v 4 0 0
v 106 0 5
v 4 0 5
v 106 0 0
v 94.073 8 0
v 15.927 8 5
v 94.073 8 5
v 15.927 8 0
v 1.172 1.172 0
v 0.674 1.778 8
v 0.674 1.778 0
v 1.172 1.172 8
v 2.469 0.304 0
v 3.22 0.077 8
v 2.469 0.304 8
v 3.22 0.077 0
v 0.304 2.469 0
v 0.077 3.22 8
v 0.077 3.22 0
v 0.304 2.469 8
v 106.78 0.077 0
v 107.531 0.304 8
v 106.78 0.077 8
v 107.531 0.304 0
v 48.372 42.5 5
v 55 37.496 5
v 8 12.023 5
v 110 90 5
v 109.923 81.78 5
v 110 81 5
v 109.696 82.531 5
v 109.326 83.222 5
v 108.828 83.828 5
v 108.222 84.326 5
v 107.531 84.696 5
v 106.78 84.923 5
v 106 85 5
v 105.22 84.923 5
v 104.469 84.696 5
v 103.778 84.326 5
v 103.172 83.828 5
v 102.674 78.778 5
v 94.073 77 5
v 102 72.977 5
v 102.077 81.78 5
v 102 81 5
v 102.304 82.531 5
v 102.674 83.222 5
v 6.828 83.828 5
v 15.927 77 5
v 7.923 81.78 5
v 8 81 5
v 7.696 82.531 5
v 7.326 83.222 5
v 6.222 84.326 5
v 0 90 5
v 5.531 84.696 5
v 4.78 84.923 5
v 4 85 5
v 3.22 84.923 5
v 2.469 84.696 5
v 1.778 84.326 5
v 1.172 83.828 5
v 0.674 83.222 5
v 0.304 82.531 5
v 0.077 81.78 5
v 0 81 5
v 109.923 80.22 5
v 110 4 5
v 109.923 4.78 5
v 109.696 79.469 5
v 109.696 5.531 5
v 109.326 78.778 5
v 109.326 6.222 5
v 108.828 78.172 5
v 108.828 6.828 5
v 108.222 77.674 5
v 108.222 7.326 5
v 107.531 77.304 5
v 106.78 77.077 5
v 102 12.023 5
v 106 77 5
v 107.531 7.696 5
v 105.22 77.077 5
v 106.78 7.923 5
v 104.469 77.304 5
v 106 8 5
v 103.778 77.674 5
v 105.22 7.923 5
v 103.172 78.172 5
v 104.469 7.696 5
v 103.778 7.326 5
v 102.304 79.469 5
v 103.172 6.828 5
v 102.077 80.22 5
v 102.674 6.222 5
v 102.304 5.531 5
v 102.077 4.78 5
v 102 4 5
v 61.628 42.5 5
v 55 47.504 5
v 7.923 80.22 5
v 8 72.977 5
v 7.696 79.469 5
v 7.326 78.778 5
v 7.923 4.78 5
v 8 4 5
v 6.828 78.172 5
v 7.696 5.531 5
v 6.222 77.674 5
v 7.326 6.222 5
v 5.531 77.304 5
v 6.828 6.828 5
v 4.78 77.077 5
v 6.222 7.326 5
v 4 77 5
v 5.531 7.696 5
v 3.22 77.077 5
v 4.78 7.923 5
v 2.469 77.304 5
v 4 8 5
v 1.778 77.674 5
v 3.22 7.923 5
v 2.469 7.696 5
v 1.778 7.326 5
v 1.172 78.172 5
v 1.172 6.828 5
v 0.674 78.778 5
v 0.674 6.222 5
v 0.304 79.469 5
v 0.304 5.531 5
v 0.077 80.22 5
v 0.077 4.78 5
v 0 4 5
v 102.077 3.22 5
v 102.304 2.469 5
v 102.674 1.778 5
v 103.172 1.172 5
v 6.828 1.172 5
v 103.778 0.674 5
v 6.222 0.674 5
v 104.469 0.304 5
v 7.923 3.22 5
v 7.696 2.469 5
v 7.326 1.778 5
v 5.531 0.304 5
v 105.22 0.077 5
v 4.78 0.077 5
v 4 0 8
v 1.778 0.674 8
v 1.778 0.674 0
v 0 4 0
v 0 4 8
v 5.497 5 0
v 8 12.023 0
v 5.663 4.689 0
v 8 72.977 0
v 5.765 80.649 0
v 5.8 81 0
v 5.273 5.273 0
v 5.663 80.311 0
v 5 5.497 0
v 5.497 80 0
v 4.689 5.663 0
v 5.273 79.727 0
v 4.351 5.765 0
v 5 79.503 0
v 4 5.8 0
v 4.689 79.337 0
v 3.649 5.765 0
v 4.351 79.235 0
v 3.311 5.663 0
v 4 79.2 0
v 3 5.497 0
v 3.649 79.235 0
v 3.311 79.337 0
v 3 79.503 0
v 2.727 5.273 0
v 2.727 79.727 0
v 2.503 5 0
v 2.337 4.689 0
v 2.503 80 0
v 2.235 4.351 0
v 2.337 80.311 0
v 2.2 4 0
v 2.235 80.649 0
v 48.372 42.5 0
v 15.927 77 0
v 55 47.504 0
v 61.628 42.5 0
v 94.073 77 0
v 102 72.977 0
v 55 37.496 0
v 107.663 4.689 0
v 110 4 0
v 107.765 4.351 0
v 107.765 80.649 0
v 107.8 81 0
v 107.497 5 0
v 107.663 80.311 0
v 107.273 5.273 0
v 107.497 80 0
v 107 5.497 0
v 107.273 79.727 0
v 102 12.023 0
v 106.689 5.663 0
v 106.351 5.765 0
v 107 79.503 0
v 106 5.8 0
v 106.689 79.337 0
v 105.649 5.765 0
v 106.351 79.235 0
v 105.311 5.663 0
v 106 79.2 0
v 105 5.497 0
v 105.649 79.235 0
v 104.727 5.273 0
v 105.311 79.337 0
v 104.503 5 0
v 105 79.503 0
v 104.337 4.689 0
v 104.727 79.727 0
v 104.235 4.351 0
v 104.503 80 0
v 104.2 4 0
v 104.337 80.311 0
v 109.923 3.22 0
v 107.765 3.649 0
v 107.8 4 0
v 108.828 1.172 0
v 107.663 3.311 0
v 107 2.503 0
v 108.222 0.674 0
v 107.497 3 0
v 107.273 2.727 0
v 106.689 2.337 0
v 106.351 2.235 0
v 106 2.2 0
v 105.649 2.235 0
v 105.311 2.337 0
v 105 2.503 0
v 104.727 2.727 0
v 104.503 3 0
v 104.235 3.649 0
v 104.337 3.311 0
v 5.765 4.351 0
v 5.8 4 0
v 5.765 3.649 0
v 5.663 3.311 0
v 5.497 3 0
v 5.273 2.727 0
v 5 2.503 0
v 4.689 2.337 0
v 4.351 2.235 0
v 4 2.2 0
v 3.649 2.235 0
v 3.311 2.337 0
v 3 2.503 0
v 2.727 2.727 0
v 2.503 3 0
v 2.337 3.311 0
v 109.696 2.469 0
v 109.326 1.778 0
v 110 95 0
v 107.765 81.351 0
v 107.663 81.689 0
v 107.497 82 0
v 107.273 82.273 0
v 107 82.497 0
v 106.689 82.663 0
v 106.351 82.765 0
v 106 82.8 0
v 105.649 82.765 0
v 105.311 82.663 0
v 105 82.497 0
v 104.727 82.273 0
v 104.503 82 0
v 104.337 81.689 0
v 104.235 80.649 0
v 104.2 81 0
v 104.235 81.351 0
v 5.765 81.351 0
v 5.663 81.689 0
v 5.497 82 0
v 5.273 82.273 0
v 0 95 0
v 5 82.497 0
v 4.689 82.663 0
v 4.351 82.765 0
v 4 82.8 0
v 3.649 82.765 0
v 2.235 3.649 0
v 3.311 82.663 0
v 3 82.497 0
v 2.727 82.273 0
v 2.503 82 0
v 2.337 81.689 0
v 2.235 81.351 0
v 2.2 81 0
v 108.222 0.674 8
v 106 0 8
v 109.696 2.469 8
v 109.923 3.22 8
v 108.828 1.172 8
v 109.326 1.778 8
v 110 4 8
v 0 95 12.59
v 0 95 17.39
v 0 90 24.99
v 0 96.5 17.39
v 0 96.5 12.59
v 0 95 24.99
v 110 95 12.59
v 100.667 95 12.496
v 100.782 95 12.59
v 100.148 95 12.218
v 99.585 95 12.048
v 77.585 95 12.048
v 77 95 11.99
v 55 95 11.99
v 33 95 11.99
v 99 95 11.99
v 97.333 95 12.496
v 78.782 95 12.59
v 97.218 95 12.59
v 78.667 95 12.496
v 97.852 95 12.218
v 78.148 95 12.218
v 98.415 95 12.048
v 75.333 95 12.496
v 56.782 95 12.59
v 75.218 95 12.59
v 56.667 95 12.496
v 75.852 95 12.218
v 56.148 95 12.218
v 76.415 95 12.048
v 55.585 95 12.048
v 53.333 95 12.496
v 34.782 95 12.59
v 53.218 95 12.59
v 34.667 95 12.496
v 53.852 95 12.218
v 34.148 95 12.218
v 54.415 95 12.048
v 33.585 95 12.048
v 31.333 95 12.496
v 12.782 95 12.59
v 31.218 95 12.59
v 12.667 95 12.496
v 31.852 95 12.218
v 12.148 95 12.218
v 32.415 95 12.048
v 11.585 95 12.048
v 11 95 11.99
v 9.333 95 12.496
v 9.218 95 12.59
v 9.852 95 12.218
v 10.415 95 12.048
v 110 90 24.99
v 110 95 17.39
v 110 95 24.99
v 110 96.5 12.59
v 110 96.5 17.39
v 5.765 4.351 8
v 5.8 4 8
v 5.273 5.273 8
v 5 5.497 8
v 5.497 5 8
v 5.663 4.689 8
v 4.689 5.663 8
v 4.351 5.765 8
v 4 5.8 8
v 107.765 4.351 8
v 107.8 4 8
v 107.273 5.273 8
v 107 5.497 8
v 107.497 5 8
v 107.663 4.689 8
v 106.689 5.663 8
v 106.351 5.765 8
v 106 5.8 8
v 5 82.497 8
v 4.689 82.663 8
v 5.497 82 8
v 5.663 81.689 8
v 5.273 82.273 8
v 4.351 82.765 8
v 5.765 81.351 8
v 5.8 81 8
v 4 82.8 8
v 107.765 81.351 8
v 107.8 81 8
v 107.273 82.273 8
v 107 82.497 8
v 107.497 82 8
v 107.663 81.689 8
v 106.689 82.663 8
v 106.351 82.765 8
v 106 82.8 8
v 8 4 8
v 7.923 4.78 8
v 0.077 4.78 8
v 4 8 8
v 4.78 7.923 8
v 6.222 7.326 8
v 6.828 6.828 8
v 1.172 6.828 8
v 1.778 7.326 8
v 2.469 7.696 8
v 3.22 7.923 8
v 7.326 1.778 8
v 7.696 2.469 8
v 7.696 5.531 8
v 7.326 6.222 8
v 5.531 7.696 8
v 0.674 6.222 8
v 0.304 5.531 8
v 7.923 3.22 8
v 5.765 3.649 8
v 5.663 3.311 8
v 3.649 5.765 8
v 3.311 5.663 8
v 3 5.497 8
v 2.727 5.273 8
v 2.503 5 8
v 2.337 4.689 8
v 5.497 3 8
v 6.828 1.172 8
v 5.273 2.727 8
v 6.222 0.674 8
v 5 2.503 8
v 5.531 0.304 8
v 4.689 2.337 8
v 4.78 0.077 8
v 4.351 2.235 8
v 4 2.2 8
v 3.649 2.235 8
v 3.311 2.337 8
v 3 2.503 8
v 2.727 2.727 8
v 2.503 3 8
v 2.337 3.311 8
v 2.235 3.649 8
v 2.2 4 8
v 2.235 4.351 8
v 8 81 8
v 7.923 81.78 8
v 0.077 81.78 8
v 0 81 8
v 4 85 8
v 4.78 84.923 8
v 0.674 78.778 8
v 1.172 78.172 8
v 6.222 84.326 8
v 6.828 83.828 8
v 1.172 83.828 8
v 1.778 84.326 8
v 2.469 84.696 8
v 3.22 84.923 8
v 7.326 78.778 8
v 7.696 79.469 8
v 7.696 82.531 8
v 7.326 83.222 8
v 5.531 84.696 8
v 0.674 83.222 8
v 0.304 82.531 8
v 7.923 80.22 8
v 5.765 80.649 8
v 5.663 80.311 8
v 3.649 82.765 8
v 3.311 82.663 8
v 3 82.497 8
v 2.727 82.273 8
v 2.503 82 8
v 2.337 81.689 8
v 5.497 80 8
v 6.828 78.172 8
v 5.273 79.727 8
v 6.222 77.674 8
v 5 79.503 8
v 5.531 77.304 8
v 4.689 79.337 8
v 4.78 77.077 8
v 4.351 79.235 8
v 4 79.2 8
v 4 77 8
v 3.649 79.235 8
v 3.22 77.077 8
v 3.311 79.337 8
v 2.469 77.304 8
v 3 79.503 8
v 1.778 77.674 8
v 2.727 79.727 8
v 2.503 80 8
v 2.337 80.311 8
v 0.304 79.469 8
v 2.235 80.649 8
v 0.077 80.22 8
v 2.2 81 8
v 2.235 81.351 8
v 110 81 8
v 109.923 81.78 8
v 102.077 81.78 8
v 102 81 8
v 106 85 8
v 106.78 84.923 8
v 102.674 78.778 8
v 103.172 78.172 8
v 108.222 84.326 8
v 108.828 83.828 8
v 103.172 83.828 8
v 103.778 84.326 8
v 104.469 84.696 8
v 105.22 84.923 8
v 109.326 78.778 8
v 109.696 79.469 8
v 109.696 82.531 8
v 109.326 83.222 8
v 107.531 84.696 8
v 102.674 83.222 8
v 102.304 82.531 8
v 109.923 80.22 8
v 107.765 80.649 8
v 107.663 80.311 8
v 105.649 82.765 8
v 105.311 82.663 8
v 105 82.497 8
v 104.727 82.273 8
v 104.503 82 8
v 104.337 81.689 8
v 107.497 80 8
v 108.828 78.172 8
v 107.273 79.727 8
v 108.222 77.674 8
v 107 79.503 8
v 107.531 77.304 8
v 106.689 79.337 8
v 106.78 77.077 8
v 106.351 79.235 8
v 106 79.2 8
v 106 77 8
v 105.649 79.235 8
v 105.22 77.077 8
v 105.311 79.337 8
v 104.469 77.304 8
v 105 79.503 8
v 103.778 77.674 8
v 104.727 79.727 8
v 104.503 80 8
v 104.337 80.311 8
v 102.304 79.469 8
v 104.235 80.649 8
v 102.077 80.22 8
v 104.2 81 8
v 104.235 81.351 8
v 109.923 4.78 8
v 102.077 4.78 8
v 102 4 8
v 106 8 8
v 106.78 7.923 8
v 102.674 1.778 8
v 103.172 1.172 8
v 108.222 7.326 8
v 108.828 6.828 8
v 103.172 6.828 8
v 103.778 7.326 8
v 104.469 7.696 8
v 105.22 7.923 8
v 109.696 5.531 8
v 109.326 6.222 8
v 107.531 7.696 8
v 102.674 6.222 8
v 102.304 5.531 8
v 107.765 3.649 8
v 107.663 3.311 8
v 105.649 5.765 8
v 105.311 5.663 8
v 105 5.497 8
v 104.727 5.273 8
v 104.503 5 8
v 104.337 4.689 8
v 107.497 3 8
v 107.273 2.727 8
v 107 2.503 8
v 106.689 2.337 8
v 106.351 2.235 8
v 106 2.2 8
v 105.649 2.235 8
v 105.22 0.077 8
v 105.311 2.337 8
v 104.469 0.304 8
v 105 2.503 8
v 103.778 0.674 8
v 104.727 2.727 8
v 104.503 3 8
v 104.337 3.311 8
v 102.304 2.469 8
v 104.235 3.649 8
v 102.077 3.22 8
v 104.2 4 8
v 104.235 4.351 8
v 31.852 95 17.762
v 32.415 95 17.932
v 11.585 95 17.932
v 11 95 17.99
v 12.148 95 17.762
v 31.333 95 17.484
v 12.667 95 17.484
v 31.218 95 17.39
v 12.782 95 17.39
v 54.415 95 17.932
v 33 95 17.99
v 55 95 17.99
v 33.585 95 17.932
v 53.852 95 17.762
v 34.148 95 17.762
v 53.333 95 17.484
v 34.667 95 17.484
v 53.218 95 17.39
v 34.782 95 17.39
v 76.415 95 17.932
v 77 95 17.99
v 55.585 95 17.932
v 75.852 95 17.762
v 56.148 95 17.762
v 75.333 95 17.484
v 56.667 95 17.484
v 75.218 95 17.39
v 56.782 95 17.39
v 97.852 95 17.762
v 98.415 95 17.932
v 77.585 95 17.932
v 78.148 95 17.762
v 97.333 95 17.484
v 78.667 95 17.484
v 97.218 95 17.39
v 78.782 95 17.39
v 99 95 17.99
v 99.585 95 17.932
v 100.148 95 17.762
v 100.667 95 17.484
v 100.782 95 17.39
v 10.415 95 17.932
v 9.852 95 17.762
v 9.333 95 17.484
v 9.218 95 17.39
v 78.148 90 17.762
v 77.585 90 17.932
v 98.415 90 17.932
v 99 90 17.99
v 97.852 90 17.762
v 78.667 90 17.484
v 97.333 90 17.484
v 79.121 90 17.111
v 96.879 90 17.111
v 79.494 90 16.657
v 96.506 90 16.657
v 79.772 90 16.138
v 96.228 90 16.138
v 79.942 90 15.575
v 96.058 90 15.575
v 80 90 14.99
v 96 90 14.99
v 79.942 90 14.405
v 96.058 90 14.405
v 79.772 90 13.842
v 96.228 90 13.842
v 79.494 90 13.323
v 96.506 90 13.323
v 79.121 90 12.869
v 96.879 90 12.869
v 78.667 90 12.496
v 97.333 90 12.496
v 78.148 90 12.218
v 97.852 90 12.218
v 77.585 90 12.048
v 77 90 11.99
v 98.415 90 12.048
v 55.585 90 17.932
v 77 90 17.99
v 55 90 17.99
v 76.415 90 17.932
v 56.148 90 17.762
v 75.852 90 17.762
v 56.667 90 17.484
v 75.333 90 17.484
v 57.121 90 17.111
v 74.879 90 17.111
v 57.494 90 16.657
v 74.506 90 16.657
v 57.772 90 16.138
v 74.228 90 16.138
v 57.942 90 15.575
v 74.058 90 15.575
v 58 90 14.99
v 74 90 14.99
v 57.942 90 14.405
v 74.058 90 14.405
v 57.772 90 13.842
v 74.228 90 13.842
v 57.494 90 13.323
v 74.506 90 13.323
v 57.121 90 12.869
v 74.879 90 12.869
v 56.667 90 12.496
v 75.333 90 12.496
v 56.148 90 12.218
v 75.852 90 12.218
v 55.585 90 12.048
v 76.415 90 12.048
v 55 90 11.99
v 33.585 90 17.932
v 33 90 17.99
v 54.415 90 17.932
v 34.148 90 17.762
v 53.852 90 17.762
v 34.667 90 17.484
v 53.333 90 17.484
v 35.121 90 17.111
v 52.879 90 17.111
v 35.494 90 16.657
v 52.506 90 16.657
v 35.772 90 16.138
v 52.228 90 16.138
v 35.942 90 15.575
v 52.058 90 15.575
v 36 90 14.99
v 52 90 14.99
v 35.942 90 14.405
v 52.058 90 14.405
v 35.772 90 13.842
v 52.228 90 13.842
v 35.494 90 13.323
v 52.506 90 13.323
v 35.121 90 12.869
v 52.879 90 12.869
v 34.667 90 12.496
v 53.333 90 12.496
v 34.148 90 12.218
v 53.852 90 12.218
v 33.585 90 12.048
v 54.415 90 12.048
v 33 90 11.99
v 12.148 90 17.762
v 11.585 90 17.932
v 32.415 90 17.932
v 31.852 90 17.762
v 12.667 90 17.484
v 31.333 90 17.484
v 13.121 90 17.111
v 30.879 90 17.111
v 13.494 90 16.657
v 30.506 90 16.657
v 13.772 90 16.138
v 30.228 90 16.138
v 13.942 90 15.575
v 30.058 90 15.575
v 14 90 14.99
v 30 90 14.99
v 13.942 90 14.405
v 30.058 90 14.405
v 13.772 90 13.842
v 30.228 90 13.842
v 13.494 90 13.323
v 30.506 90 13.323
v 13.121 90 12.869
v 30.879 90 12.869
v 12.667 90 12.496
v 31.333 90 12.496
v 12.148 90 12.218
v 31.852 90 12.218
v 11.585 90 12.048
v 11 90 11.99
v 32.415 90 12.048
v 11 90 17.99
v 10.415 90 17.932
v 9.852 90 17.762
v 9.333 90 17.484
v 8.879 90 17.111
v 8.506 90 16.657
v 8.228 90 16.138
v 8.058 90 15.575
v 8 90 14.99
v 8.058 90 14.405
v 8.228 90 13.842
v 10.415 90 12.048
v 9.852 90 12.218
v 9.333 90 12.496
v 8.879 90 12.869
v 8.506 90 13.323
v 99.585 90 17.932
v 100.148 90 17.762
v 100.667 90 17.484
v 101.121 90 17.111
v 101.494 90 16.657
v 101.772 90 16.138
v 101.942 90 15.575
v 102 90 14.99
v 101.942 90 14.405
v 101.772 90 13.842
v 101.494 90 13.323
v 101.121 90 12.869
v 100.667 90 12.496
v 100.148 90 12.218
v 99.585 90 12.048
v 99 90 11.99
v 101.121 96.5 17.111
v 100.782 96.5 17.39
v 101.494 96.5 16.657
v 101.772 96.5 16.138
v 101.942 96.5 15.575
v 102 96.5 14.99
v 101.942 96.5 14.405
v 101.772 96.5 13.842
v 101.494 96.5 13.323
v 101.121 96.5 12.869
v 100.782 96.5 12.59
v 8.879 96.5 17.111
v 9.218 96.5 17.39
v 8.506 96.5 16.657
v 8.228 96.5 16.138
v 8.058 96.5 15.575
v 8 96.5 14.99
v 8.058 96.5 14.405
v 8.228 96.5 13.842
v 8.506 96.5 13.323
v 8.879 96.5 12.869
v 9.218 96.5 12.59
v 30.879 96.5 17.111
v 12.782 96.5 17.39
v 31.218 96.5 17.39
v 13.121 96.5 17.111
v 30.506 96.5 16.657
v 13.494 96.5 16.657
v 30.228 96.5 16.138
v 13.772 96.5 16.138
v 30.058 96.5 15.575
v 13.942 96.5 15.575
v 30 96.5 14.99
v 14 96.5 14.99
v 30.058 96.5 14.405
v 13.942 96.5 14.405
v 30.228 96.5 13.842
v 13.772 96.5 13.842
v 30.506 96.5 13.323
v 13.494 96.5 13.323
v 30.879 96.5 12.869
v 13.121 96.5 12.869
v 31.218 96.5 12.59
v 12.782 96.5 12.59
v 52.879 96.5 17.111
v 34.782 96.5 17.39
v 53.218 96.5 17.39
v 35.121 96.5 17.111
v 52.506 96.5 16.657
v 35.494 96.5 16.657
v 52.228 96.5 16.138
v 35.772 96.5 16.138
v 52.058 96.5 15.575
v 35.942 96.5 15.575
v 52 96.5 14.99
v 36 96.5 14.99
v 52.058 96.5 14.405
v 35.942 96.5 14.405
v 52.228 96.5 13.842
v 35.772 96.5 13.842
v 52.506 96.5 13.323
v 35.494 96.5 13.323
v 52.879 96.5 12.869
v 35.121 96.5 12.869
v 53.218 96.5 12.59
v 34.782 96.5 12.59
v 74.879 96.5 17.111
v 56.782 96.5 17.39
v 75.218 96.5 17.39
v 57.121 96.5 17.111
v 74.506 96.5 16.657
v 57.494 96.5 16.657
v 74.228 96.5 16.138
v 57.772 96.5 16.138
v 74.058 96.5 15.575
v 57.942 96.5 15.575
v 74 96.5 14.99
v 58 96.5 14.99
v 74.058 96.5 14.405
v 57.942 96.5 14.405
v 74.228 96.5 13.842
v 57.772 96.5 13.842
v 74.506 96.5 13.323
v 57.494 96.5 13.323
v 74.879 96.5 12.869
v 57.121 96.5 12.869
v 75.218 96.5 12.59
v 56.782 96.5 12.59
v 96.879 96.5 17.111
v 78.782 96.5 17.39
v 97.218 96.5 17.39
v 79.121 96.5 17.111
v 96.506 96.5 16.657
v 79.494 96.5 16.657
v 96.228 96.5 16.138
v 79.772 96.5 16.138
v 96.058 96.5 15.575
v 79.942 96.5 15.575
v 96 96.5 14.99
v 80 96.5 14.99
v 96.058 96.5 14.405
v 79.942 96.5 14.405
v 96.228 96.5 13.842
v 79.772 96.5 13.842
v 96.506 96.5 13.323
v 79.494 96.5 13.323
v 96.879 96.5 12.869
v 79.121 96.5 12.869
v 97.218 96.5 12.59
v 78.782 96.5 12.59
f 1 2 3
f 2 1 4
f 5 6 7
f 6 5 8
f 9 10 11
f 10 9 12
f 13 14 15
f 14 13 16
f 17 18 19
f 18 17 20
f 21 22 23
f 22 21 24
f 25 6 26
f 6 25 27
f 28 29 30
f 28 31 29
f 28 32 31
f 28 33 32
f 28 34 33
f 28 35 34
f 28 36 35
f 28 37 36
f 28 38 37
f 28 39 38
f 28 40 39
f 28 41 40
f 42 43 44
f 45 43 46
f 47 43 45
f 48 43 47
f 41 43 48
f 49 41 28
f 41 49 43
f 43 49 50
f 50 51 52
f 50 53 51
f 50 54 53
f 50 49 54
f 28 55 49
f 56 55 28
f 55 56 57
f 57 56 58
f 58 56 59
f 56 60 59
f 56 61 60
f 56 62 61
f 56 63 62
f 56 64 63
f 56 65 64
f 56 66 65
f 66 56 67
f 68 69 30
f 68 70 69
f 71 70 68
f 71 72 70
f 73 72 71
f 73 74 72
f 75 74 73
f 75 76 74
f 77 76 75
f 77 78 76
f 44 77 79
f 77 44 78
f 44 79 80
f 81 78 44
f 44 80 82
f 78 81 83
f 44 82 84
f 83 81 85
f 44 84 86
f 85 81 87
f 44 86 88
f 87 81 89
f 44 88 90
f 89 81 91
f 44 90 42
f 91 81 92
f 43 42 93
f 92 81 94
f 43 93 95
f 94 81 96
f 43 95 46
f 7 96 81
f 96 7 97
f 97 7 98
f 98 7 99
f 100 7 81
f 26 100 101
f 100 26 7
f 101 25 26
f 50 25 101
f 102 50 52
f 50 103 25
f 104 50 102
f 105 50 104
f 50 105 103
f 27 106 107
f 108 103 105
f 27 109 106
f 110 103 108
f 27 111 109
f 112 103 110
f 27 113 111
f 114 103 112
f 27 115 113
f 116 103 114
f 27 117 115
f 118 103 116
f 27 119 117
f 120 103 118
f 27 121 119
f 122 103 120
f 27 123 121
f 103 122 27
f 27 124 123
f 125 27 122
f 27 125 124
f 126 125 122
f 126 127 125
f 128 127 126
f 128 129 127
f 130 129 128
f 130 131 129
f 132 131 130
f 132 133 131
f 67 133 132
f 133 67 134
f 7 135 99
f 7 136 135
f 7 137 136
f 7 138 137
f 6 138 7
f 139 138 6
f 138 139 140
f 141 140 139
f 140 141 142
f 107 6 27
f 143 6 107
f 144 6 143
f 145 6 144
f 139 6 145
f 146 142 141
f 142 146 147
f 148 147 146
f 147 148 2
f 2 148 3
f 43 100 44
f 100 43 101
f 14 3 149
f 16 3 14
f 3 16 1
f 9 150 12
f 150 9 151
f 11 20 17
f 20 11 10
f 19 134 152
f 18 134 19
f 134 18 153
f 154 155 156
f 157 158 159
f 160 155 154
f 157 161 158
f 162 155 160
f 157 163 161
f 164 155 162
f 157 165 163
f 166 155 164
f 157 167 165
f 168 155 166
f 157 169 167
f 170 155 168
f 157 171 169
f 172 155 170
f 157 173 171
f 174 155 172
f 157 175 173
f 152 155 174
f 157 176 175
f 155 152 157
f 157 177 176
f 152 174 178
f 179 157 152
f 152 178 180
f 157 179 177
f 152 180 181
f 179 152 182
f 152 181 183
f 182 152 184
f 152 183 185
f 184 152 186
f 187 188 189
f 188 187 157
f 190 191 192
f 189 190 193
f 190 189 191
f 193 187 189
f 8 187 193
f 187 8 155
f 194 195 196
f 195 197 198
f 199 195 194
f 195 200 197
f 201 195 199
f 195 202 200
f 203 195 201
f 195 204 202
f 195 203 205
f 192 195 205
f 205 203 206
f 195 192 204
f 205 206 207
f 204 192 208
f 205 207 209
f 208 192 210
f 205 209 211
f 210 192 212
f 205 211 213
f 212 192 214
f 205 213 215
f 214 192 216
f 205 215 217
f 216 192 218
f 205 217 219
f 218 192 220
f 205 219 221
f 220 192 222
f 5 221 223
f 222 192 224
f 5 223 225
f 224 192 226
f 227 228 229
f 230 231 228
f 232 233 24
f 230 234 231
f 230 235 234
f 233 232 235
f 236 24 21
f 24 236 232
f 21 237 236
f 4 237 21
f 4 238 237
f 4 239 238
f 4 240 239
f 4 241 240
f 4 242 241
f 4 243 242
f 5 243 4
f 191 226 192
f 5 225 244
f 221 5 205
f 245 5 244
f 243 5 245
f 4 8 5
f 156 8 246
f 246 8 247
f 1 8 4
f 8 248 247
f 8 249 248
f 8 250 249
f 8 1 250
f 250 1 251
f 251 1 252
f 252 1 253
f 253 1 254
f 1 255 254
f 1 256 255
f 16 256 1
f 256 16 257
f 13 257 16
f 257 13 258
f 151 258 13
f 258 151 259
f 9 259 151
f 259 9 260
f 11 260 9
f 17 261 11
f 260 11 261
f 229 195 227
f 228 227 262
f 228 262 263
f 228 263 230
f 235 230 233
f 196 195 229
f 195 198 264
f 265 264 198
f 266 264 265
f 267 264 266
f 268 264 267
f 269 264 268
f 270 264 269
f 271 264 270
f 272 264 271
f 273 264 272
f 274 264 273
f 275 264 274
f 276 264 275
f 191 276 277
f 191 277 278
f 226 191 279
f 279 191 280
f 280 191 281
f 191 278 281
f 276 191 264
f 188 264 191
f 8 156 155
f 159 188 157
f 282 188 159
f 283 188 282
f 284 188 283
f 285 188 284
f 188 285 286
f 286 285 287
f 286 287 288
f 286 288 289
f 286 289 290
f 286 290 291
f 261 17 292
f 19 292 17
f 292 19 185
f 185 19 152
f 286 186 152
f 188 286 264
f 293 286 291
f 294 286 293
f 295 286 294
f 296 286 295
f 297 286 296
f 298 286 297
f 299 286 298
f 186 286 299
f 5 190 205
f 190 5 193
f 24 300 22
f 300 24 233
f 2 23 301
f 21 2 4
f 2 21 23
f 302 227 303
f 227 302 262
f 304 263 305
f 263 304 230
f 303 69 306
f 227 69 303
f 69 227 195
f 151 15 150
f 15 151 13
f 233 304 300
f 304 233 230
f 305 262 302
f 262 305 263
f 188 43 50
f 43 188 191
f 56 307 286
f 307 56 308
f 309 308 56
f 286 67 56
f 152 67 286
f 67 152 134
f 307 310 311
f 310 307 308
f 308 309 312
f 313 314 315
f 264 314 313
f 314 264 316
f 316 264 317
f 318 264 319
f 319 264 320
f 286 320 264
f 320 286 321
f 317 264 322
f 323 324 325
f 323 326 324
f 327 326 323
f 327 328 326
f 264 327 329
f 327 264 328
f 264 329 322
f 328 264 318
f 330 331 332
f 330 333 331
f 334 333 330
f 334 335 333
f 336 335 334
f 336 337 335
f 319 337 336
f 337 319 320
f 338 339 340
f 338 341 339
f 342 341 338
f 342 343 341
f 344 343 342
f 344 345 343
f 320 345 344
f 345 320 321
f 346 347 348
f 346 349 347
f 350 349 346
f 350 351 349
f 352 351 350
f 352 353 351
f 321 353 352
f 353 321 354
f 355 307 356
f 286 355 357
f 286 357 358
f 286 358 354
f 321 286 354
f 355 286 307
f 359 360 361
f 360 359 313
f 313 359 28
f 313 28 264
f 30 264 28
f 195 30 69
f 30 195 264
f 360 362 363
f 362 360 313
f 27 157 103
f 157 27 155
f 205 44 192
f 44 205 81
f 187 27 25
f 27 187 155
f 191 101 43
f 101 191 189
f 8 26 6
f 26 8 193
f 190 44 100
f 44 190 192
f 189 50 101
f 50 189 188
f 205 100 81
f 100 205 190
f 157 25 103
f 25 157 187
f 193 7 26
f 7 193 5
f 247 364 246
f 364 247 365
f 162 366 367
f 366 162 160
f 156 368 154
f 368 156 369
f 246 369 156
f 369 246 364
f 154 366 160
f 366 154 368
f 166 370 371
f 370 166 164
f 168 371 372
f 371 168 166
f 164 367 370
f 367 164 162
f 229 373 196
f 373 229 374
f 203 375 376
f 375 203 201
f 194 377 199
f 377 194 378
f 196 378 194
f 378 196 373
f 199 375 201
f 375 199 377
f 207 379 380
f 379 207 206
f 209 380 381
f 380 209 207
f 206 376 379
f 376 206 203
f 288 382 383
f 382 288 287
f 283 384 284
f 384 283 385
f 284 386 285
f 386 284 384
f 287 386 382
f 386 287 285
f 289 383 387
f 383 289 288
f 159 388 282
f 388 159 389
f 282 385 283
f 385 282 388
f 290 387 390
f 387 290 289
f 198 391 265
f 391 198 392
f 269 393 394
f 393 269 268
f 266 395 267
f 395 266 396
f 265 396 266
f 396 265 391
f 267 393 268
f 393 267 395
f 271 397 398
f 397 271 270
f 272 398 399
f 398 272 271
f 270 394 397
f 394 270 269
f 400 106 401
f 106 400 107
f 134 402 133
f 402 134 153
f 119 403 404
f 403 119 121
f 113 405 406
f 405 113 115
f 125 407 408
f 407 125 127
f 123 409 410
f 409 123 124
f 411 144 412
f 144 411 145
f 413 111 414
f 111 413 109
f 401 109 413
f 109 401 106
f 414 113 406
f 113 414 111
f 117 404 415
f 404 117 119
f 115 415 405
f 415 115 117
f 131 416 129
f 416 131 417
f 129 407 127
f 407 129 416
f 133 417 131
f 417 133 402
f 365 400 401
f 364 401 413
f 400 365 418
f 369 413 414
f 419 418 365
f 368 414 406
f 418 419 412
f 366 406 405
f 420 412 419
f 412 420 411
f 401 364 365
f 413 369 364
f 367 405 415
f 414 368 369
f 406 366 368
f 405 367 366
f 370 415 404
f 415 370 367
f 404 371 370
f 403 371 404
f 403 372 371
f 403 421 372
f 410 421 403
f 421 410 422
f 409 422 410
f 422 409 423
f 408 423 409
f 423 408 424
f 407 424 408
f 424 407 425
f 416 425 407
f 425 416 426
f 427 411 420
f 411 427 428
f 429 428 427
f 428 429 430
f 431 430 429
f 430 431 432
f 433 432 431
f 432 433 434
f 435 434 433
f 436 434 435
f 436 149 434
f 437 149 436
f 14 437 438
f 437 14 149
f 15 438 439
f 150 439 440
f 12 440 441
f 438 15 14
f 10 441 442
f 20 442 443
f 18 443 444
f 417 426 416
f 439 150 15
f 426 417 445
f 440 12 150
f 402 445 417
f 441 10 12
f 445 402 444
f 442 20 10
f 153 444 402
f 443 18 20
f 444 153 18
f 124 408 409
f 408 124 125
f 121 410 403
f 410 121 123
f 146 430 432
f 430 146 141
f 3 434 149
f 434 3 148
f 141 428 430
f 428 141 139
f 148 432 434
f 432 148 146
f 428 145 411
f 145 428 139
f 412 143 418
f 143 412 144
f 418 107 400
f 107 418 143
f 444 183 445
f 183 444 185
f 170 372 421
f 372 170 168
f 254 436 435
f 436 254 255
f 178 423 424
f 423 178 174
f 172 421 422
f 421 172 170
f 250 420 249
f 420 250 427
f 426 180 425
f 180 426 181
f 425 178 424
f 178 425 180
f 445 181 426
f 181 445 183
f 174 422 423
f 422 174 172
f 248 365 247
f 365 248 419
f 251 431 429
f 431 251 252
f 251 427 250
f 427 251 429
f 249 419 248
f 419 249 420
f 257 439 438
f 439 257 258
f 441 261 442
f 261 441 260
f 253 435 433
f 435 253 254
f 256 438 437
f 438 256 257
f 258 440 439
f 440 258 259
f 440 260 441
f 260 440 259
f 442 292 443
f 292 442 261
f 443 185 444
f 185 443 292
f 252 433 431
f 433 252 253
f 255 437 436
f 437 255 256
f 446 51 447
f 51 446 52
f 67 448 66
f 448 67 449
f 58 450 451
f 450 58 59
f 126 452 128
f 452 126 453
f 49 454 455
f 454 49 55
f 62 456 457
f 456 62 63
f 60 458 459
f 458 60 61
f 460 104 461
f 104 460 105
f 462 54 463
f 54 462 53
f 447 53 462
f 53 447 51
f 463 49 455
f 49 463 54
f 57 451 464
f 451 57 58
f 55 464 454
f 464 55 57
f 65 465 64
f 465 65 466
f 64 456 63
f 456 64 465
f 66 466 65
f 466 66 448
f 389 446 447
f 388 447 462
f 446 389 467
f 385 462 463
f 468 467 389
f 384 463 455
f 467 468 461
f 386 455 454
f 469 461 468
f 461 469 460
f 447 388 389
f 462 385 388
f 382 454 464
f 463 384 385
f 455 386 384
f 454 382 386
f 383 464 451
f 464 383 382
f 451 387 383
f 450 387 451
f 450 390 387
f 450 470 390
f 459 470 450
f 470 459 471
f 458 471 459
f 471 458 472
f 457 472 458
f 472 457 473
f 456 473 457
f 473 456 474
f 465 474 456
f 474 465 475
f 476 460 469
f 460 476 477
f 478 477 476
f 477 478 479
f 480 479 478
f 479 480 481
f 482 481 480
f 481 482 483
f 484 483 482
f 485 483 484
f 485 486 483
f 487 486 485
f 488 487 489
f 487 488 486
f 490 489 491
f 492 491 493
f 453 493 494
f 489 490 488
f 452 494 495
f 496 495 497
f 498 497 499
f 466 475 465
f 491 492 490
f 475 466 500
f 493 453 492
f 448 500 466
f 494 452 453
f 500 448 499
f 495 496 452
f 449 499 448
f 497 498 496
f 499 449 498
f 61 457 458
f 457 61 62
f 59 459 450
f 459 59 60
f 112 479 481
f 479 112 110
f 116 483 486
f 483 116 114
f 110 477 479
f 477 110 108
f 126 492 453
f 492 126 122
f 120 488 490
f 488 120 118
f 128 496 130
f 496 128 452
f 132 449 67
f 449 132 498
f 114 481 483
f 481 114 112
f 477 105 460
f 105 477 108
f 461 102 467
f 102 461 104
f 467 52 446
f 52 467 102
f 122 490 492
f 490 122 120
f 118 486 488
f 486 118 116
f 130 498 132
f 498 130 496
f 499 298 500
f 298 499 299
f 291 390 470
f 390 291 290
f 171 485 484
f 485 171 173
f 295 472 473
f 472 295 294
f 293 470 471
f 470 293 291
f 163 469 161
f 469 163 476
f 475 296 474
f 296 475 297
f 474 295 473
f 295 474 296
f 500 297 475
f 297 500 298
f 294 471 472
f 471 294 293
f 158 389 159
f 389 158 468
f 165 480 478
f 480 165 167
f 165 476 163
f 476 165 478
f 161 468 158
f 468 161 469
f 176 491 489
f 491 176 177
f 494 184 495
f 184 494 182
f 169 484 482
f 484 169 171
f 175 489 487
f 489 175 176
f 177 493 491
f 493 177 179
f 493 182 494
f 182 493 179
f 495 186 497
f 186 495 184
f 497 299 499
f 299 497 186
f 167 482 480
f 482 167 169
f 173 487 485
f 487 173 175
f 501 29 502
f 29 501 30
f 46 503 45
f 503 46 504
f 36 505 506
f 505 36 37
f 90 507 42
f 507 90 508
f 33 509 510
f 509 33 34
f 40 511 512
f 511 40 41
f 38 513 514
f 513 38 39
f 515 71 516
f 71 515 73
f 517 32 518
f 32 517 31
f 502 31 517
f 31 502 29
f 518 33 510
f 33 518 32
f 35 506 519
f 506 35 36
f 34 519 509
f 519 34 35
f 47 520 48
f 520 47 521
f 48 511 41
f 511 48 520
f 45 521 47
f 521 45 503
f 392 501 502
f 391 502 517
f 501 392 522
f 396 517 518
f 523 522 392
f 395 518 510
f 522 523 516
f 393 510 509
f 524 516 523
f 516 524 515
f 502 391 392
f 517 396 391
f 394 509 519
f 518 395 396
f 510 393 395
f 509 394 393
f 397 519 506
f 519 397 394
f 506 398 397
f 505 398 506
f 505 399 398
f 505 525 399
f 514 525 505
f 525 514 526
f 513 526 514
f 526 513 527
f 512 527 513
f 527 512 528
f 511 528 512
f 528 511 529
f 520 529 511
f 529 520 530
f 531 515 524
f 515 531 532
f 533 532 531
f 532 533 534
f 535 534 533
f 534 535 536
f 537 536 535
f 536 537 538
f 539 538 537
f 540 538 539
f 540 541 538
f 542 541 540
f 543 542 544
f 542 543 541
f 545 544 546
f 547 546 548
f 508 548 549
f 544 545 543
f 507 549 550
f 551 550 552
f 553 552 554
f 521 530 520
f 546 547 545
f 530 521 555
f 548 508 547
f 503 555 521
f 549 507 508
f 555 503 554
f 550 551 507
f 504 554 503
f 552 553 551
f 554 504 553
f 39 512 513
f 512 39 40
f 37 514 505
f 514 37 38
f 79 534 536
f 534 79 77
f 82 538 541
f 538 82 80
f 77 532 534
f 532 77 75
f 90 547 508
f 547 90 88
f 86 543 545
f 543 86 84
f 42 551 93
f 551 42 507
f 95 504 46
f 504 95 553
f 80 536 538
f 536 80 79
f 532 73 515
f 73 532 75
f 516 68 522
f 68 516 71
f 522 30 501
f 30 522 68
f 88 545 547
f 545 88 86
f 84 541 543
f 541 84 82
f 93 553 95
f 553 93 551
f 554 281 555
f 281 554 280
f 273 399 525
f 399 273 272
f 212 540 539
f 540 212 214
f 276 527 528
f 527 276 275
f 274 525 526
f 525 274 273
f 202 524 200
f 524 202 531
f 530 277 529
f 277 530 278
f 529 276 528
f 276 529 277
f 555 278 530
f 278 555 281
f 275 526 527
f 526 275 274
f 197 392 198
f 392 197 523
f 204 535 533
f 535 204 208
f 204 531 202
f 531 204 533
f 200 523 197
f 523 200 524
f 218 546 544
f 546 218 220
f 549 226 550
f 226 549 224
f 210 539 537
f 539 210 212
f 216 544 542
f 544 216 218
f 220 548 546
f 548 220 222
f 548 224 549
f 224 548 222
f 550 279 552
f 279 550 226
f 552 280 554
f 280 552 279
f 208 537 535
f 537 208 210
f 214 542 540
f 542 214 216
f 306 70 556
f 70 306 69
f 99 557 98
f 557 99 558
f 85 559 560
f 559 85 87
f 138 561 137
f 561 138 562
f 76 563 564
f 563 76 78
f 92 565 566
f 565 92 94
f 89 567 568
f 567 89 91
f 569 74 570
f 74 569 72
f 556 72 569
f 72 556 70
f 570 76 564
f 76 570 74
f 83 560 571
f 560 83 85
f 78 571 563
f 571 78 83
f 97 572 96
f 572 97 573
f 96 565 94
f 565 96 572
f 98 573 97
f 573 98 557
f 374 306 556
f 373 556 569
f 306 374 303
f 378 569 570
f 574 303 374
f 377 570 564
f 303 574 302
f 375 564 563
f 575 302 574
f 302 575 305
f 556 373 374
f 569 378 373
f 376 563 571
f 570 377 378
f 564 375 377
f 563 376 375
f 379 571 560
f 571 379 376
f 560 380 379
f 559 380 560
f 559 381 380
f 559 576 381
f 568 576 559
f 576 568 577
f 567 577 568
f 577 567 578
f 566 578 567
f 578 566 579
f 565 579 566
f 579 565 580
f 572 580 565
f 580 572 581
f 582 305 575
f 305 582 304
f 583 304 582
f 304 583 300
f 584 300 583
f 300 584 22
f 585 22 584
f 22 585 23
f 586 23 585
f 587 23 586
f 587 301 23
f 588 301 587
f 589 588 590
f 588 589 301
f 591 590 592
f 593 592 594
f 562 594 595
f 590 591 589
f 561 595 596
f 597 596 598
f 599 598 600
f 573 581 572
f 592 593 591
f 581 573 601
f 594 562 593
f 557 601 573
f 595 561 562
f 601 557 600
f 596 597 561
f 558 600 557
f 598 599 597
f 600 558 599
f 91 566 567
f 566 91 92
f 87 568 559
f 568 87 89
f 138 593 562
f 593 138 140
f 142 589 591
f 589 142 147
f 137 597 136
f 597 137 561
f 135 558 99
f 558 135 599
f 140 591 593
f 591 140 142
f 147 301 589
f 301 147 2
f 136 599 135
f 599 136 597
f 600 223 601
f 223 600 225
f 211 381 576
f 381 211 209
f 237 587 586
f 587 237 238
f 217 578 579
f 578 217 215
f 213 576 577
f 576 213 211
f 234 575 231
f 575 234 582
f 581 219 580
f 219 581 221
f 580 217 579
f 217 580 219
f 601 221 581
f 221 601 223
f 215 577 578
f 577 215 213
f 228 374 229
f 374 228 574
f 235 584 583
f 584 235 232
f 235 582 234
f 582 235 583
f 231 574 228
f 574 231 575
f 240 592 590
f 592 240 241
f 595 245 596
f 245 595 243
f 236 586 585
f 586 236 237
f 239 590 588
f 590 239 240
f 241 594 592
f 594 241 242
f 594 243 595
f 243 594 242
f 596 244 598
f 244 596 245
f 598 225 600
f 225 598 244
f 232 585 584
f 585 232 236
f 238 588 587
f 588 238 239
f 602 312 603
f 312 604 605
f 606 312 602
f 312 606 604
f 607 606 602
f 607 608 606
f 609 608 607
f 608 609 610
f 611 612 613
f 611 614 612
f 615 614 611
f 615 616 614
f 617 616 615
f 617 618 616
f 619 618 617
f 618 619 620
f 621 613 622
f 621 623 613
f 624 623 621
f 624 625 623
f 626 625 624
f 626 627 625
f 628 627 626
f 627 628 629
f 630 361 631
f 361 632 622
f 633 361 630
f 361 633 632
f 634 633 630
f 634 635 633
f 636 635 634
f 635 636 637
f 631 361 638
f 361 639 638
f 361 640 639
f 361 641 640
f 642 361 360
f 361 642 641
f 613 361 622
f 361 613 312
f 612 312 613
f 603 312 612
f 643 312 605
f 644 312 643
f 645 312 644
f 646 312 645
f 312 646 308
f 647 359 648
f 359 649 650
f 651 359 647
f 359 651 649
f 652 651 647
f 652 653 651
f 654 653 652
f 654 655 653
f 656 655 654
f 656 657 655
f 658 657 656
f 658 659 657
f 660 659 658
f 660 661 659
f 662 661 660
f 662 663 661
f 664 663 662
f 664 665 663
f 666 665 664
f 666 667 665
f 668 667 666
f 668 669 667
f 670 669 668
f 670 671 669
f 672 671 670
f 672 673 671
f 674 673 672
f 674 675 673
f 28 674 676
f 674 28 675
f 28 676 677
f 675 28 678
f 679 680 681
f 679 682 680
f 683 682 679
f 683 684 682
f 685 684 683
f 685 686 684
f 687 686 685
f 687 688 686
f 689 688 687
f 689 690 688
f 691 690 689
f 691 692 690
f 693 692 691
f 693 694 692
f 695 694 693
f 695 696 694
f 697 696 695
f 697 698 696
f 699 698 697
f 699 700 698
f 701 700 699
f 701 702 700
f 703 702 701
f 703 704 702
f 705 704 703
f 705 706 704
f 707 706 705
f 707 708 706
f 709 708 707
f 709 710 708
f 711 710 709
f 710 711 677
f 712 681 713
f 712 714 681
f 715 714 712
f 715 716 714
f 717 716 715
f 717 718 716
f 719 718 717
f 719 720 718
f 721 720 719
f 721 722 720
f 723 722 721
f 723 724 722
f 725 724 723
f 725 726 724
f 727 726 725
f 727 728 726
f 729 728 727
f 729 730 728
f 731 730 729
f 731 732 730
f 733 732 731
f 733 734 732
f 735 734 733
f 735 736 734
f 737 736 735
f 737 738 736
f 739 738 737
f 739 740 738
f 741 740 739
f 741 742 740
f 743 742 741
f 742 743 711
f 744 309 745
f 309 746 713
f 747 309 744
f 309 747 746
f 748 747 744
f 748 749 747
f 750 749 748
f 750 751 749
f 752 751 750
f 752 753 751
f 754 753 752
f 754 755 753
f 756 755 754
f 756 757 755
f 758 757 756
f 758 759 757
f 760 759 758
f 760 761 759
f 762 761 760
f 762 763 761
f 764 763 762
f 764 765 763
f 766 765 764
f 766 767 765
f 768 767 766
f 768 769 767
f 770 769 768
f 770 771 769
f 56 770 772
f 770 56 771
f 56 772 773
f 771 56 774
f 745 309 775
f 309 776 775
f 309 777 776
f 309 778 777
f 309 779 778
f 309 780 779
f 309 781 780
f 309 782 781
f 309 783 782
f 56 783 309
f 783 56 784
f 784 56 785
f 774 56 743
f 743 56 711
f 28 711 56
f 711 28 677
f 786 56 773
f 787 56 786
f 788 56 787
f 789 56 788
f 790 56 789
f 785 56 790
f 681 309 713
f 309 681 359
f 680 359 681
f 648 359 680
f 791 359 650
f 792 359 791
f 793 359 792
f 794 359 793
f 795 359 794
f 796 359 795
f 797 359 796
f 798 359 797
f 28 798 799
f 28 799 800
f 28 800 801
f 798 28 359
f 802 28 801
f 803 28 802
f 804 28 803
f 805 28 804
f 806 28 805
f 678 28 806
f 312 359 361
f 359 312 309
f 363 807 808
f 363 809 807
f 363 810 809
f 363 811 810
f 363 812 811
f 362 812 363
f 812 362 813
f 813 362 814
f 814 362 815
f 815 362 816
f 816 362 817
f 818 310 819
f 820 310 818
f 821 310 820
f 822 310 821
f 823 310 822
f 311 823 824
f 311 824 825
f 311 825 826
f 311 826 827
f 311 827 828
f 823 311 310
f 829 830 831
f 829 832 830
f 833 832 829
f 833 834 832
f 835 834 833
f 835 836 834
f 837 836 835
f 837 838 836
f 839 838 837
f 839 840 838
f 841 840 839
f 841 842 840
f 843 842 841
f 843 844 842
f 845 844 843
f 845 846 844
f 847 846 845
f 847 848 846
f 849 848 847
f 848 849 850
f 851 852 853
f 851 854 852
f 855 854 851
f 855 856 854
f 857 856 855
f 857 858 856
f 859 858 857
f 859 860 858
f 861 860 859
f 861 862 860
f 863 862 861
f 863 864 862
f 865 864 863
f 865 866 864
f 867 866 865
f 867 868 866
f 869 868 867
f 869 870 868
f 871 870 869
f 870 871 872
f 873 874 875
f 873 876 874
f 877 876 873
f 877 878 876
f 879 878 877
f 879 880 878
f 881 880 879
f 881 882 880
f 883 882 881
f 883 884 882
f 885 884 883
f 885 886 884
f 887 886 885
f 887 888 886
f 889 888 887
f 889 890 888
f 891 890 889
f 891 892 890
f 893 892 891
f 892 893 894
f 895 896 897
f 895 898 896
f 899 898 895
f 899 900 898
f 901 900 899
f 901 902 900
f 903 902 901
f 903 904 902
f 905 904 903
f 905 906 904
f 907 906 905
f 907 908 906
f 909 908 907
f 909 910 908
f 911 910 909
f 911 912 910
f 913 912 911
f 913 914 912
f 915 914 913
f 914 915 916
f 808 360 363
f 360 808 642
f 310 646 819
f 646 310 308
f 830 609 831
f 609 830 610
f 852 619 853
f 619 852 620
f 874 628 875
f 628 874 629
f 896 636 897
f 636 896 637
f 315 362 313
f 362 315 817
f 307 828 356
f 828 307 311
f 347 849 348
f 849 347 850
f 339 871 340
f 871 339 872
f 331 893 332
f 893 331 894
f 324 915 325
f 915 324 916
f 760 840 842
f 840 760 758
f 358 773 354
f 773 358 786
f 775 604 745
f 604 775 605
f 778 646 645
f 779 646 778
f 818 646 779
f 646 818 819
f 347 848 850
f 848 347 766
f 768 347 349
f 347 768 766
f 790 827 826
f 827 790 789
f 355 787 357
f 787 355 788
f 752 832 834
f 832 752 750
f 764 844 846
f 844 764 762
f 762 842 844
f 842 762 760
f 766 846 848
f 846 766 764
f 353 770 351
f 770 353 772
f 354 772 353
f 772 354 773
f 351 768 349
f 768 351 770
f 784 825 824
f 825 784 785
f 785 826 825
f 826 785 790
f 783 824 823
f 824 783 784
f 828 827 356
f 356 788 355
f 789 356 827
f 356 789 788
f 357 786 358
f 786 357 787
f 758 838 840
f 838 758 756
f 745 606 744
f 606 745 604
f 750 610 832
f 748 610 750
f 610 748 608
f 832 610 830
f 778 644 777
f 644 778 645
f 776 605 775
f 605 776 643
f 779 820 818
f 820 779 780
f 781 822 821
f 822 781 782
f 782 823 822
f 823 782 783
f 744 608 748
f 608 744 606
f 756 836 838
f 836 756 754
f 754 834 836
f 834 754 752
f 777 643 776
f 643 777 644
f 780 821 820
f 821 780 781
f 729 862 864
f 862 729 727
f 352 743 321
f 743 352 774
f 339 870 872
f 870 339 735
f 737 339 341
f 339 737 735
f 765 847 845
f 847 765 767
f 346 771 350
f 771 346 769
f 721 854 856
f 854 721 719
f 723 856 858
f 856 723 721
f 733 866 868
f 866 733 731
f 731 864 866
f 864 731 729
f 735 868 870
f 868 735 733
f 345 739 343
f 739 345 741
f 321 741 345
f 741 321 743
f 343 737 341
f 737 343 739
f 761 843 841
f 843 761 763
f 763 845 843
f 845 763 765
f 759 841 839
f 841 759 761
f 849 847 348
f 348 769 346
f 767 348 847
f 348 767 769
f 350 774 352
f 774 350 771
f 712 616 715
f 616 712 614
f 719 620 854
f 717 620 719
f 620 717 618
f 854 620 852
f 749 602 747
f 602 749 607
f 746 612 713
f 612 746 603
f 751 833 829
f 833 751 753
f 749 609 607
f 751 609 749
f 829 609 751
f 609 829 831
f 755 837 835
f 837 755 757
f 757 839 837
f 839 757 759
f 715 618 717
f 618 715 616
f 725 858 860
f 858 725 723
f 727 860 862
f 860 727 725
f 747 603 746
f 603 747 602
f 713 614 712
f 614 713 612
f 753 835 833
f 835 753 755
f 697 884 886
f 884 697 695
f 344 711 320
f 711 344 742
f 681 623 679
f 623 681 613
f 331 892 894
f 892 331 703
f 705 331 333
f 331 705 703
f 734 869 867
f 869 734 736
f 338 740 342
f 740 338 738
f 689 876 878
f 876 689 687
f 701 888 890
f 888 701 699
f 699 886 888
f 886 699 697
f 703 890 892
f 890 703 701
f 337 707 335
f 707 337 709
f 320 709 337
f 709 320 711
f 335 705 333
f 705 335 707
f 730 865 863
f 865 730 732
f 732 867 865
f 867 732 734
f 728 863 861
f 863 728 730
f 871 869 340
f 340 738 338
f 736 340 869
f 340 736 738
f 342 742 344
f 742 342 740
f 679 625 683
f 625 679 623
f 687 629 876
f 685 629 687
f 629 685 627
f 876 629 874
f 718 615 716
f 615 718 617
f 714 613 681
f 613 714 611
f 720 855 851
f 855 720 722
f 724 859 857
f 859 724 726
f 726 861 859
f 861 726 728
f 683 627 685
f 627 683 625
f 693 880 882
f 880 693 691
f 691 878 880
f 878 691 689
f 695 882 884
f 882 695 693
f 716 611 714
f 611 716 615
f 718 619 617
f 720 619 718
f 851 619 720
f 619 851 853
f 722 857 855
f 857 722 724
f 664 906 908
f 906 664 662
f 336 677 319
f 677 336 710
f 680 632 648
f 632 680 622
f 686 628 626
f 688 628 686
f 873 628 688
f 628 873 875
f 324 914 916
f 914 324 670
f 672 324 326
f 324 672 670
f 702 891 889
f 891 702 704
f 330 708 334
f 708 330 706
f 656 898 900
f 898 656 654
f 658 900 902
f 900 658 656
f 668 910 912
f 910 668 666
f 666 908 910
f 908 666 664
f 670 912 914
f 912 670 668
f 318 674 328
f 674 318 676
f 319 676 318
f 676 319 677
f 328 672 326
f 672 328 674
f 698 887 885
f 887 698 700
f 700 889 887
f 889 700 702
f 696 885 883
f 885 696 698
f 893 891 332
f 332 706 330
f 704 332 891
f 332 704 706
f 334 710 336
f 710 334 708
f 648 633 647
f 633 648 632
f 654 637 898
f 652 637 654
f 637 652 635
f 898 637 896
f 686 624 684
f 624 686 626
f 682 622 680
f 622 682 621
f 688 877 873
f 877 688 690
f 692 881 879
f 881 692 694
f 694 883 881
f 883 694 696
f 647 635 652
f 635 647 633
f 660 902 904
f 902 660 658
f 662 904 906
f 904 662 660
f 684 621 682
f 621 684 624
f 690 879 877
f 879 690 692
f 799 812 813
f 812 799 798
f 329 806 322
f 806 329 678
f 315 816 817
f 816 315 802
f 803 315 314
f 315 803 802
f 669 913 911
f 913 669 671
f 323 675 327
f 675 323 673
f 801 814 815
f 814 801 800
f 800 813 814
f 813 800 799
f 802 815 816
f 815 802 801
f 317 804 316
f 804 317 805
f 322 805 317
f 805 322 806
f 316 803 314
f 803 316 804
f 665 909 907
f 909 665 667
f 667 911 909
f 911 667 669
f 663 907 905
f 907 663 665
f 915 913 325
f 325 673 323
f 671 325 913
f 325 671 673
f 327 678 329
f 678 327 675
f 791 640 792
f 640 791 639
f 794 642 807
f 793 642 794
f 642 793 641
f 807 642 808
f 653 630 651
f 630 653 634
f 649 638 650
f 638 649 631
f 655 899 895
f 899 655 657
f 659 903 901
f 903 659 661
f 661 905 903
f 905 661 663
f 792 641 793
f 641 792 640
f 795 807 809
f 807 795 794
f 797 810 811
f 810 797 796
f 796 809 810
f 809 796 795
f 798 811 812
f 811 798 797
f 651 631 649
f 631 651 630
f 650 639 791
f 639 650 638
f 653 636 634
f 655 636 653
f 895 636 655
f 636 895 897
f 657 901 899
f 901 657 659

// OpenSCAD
board_x = 110;
board_y = 85;
board_spacing = 5;
hole_offset = 4;
hole_diameter = 3.6;
strut_thickness = 5;
standoff_height = 3;
slack = 0.01;

extrusion_width = 20;
extrusion_slot = 4.8;
extrusion_slot_depth = 1.5;
extrusion_hole_diameter = 6;

$fn = 32;

module standoff(height = strut_thickness + standoff_height) {
    difference() {
        cylinder(d = 2 * hole_offset, h = height);
        translate([0, 0, -slack]) cylinder(d = hole_diameter, h = height + 2 * slack);
    }
}

module standoff_cube(height = strut_thickness + standoff_height) {
    difference() {
        translate([0, 0, height/2]) cube(size = [2 * hole_offset, 2 * hole_offset, height], center = true);
        translate([0, 0, -slack]) cylinder(d = hole_diameter, h = height + 2 * slack);
    }
}
    
module base_plate() {
    difference() {
        union() {
            // lower x-strut
            hull() {
                translate([hole_offset, hole_offset, 0]) standoff(height = strut_thickness);
                translate([board_x - hole_offset, hole_offset, 0]) standoff(height = strut_thickness);
            }
            
            // upper x-strut & spacer
            hull() {
                translate([hole_offset, board_y - hole_offset, 0]) standoff_cube(height = strut_thickness);
                translate([board_x - hole_offset, board_y - hole_offset, 0]) standoff_cube(height = strut_thickness);
                translate([0, board_y + strut_thickness, 0]) cube([1, board_spacing, strut_thickness]);
                translate([board_x - 1, board_y + strut_thickness, 0]) cube([1, board_spacing, strut_thickness]);
            }
            
            // left y-strut
            hull() {
                translate([hole_offset, hole_offset, 0]) standoff(height = strut_thickness);
                translate([hole_offset, board_y - hole_offset, 0]) standoff(height = strut_thickness);
            }

            // right y-strut
            hull() {
                translate([board_x - hole_offset, hole_offset, 0]) standoff(height = strut_thickness);
                translate([board_x - hole_offset, board_y - hole_offset, 0]) standoff(height = strut_thickness);
            }
            
            // bottom-left to top-right crossbrace
            hull() {
                translate([hole_offset, hole_offset, 0]) standoff(height = strut_thickness);
                translate([board_x - hole_offset, board_y - hole_offset, 0]) standoff(height = strut_thickness);
            }
            
            // top-left to bottom-right crossbrace
            hull() {
                translate([hole_offset, board_y - hole_offset, 0]) standoff(height = strut_thickness);
                translate([board_x - hole_offset, hole_offset, 0]) standoff(height = strut_thickness);
            }
        }
        
        // mounting holes
        translate([hole_offset, hole_offset, -slack]) cylinder(d = hole_diameter, h = strut_thickness + 2 * slack);
        translate([board_x - hole_offset, hole_offset, -slack]) cylinder(d = hole_diameter, h = strut_thickness + 2 * slack);
        translate([hole_offset, board_y - hole_offset, -slack]) cylinder(d = hole_diameter, h = strut_thickness + 2 * slack);
        translate([board_x - hole_offset, board_y - hole_offset, -slack]) cylinder(d = hole_diameter, h = strut_thickness + 2 * slack);
    }
}

module extrusion_rail() {
    slot_offset = (extrusion_width - extrusion_slot) / 2;
    hole_offset = extrusion_width / 2;
    hole_spacing = board_x / 5;

    difference() {
        union() {
            // rail & slot
            cube([board_x, extrusion_width, strut_thickness]);
            translate([0, slot_offset, strut_thickness]) cube([board_x, extrusion_slot, extrusion_slot_depth]);
        }
        // screw holes
        for(i = [0:4]) {
            translate([(hole_spacing / 2) + i * hole_spacing, hole_offset, -slack]) cylinder(d = extrusion_hole_diameter, h = strut_thickness + extrusion_slot_depth + 2 * slack);
        }
    }
}

module makerbase_sbase_mount() {
    base_plate();
    
    // raised standoffs
    translate([hole_offset, hole_offset, 0]) standoff();
    translate([hole_offset, board_y - hole_offset, 0]) standoff();
    translate([board_x - hole_offset, board_y - hole_offset, 0]) standoff();
    translate([board_x - hole_offset, hole_offset, 0]) standoff();
    
    // attach the rail (and sink it into the base_plate slightly, otherwise the resulting object
    // is not manifold and may cause problems)
    translate([0, board_y + board_spacing, extrusion_width + strut_thickness - slack]) rotate([-90, 0, 0]) extrusion_rail();
}

makerbase_sbase_mount();
